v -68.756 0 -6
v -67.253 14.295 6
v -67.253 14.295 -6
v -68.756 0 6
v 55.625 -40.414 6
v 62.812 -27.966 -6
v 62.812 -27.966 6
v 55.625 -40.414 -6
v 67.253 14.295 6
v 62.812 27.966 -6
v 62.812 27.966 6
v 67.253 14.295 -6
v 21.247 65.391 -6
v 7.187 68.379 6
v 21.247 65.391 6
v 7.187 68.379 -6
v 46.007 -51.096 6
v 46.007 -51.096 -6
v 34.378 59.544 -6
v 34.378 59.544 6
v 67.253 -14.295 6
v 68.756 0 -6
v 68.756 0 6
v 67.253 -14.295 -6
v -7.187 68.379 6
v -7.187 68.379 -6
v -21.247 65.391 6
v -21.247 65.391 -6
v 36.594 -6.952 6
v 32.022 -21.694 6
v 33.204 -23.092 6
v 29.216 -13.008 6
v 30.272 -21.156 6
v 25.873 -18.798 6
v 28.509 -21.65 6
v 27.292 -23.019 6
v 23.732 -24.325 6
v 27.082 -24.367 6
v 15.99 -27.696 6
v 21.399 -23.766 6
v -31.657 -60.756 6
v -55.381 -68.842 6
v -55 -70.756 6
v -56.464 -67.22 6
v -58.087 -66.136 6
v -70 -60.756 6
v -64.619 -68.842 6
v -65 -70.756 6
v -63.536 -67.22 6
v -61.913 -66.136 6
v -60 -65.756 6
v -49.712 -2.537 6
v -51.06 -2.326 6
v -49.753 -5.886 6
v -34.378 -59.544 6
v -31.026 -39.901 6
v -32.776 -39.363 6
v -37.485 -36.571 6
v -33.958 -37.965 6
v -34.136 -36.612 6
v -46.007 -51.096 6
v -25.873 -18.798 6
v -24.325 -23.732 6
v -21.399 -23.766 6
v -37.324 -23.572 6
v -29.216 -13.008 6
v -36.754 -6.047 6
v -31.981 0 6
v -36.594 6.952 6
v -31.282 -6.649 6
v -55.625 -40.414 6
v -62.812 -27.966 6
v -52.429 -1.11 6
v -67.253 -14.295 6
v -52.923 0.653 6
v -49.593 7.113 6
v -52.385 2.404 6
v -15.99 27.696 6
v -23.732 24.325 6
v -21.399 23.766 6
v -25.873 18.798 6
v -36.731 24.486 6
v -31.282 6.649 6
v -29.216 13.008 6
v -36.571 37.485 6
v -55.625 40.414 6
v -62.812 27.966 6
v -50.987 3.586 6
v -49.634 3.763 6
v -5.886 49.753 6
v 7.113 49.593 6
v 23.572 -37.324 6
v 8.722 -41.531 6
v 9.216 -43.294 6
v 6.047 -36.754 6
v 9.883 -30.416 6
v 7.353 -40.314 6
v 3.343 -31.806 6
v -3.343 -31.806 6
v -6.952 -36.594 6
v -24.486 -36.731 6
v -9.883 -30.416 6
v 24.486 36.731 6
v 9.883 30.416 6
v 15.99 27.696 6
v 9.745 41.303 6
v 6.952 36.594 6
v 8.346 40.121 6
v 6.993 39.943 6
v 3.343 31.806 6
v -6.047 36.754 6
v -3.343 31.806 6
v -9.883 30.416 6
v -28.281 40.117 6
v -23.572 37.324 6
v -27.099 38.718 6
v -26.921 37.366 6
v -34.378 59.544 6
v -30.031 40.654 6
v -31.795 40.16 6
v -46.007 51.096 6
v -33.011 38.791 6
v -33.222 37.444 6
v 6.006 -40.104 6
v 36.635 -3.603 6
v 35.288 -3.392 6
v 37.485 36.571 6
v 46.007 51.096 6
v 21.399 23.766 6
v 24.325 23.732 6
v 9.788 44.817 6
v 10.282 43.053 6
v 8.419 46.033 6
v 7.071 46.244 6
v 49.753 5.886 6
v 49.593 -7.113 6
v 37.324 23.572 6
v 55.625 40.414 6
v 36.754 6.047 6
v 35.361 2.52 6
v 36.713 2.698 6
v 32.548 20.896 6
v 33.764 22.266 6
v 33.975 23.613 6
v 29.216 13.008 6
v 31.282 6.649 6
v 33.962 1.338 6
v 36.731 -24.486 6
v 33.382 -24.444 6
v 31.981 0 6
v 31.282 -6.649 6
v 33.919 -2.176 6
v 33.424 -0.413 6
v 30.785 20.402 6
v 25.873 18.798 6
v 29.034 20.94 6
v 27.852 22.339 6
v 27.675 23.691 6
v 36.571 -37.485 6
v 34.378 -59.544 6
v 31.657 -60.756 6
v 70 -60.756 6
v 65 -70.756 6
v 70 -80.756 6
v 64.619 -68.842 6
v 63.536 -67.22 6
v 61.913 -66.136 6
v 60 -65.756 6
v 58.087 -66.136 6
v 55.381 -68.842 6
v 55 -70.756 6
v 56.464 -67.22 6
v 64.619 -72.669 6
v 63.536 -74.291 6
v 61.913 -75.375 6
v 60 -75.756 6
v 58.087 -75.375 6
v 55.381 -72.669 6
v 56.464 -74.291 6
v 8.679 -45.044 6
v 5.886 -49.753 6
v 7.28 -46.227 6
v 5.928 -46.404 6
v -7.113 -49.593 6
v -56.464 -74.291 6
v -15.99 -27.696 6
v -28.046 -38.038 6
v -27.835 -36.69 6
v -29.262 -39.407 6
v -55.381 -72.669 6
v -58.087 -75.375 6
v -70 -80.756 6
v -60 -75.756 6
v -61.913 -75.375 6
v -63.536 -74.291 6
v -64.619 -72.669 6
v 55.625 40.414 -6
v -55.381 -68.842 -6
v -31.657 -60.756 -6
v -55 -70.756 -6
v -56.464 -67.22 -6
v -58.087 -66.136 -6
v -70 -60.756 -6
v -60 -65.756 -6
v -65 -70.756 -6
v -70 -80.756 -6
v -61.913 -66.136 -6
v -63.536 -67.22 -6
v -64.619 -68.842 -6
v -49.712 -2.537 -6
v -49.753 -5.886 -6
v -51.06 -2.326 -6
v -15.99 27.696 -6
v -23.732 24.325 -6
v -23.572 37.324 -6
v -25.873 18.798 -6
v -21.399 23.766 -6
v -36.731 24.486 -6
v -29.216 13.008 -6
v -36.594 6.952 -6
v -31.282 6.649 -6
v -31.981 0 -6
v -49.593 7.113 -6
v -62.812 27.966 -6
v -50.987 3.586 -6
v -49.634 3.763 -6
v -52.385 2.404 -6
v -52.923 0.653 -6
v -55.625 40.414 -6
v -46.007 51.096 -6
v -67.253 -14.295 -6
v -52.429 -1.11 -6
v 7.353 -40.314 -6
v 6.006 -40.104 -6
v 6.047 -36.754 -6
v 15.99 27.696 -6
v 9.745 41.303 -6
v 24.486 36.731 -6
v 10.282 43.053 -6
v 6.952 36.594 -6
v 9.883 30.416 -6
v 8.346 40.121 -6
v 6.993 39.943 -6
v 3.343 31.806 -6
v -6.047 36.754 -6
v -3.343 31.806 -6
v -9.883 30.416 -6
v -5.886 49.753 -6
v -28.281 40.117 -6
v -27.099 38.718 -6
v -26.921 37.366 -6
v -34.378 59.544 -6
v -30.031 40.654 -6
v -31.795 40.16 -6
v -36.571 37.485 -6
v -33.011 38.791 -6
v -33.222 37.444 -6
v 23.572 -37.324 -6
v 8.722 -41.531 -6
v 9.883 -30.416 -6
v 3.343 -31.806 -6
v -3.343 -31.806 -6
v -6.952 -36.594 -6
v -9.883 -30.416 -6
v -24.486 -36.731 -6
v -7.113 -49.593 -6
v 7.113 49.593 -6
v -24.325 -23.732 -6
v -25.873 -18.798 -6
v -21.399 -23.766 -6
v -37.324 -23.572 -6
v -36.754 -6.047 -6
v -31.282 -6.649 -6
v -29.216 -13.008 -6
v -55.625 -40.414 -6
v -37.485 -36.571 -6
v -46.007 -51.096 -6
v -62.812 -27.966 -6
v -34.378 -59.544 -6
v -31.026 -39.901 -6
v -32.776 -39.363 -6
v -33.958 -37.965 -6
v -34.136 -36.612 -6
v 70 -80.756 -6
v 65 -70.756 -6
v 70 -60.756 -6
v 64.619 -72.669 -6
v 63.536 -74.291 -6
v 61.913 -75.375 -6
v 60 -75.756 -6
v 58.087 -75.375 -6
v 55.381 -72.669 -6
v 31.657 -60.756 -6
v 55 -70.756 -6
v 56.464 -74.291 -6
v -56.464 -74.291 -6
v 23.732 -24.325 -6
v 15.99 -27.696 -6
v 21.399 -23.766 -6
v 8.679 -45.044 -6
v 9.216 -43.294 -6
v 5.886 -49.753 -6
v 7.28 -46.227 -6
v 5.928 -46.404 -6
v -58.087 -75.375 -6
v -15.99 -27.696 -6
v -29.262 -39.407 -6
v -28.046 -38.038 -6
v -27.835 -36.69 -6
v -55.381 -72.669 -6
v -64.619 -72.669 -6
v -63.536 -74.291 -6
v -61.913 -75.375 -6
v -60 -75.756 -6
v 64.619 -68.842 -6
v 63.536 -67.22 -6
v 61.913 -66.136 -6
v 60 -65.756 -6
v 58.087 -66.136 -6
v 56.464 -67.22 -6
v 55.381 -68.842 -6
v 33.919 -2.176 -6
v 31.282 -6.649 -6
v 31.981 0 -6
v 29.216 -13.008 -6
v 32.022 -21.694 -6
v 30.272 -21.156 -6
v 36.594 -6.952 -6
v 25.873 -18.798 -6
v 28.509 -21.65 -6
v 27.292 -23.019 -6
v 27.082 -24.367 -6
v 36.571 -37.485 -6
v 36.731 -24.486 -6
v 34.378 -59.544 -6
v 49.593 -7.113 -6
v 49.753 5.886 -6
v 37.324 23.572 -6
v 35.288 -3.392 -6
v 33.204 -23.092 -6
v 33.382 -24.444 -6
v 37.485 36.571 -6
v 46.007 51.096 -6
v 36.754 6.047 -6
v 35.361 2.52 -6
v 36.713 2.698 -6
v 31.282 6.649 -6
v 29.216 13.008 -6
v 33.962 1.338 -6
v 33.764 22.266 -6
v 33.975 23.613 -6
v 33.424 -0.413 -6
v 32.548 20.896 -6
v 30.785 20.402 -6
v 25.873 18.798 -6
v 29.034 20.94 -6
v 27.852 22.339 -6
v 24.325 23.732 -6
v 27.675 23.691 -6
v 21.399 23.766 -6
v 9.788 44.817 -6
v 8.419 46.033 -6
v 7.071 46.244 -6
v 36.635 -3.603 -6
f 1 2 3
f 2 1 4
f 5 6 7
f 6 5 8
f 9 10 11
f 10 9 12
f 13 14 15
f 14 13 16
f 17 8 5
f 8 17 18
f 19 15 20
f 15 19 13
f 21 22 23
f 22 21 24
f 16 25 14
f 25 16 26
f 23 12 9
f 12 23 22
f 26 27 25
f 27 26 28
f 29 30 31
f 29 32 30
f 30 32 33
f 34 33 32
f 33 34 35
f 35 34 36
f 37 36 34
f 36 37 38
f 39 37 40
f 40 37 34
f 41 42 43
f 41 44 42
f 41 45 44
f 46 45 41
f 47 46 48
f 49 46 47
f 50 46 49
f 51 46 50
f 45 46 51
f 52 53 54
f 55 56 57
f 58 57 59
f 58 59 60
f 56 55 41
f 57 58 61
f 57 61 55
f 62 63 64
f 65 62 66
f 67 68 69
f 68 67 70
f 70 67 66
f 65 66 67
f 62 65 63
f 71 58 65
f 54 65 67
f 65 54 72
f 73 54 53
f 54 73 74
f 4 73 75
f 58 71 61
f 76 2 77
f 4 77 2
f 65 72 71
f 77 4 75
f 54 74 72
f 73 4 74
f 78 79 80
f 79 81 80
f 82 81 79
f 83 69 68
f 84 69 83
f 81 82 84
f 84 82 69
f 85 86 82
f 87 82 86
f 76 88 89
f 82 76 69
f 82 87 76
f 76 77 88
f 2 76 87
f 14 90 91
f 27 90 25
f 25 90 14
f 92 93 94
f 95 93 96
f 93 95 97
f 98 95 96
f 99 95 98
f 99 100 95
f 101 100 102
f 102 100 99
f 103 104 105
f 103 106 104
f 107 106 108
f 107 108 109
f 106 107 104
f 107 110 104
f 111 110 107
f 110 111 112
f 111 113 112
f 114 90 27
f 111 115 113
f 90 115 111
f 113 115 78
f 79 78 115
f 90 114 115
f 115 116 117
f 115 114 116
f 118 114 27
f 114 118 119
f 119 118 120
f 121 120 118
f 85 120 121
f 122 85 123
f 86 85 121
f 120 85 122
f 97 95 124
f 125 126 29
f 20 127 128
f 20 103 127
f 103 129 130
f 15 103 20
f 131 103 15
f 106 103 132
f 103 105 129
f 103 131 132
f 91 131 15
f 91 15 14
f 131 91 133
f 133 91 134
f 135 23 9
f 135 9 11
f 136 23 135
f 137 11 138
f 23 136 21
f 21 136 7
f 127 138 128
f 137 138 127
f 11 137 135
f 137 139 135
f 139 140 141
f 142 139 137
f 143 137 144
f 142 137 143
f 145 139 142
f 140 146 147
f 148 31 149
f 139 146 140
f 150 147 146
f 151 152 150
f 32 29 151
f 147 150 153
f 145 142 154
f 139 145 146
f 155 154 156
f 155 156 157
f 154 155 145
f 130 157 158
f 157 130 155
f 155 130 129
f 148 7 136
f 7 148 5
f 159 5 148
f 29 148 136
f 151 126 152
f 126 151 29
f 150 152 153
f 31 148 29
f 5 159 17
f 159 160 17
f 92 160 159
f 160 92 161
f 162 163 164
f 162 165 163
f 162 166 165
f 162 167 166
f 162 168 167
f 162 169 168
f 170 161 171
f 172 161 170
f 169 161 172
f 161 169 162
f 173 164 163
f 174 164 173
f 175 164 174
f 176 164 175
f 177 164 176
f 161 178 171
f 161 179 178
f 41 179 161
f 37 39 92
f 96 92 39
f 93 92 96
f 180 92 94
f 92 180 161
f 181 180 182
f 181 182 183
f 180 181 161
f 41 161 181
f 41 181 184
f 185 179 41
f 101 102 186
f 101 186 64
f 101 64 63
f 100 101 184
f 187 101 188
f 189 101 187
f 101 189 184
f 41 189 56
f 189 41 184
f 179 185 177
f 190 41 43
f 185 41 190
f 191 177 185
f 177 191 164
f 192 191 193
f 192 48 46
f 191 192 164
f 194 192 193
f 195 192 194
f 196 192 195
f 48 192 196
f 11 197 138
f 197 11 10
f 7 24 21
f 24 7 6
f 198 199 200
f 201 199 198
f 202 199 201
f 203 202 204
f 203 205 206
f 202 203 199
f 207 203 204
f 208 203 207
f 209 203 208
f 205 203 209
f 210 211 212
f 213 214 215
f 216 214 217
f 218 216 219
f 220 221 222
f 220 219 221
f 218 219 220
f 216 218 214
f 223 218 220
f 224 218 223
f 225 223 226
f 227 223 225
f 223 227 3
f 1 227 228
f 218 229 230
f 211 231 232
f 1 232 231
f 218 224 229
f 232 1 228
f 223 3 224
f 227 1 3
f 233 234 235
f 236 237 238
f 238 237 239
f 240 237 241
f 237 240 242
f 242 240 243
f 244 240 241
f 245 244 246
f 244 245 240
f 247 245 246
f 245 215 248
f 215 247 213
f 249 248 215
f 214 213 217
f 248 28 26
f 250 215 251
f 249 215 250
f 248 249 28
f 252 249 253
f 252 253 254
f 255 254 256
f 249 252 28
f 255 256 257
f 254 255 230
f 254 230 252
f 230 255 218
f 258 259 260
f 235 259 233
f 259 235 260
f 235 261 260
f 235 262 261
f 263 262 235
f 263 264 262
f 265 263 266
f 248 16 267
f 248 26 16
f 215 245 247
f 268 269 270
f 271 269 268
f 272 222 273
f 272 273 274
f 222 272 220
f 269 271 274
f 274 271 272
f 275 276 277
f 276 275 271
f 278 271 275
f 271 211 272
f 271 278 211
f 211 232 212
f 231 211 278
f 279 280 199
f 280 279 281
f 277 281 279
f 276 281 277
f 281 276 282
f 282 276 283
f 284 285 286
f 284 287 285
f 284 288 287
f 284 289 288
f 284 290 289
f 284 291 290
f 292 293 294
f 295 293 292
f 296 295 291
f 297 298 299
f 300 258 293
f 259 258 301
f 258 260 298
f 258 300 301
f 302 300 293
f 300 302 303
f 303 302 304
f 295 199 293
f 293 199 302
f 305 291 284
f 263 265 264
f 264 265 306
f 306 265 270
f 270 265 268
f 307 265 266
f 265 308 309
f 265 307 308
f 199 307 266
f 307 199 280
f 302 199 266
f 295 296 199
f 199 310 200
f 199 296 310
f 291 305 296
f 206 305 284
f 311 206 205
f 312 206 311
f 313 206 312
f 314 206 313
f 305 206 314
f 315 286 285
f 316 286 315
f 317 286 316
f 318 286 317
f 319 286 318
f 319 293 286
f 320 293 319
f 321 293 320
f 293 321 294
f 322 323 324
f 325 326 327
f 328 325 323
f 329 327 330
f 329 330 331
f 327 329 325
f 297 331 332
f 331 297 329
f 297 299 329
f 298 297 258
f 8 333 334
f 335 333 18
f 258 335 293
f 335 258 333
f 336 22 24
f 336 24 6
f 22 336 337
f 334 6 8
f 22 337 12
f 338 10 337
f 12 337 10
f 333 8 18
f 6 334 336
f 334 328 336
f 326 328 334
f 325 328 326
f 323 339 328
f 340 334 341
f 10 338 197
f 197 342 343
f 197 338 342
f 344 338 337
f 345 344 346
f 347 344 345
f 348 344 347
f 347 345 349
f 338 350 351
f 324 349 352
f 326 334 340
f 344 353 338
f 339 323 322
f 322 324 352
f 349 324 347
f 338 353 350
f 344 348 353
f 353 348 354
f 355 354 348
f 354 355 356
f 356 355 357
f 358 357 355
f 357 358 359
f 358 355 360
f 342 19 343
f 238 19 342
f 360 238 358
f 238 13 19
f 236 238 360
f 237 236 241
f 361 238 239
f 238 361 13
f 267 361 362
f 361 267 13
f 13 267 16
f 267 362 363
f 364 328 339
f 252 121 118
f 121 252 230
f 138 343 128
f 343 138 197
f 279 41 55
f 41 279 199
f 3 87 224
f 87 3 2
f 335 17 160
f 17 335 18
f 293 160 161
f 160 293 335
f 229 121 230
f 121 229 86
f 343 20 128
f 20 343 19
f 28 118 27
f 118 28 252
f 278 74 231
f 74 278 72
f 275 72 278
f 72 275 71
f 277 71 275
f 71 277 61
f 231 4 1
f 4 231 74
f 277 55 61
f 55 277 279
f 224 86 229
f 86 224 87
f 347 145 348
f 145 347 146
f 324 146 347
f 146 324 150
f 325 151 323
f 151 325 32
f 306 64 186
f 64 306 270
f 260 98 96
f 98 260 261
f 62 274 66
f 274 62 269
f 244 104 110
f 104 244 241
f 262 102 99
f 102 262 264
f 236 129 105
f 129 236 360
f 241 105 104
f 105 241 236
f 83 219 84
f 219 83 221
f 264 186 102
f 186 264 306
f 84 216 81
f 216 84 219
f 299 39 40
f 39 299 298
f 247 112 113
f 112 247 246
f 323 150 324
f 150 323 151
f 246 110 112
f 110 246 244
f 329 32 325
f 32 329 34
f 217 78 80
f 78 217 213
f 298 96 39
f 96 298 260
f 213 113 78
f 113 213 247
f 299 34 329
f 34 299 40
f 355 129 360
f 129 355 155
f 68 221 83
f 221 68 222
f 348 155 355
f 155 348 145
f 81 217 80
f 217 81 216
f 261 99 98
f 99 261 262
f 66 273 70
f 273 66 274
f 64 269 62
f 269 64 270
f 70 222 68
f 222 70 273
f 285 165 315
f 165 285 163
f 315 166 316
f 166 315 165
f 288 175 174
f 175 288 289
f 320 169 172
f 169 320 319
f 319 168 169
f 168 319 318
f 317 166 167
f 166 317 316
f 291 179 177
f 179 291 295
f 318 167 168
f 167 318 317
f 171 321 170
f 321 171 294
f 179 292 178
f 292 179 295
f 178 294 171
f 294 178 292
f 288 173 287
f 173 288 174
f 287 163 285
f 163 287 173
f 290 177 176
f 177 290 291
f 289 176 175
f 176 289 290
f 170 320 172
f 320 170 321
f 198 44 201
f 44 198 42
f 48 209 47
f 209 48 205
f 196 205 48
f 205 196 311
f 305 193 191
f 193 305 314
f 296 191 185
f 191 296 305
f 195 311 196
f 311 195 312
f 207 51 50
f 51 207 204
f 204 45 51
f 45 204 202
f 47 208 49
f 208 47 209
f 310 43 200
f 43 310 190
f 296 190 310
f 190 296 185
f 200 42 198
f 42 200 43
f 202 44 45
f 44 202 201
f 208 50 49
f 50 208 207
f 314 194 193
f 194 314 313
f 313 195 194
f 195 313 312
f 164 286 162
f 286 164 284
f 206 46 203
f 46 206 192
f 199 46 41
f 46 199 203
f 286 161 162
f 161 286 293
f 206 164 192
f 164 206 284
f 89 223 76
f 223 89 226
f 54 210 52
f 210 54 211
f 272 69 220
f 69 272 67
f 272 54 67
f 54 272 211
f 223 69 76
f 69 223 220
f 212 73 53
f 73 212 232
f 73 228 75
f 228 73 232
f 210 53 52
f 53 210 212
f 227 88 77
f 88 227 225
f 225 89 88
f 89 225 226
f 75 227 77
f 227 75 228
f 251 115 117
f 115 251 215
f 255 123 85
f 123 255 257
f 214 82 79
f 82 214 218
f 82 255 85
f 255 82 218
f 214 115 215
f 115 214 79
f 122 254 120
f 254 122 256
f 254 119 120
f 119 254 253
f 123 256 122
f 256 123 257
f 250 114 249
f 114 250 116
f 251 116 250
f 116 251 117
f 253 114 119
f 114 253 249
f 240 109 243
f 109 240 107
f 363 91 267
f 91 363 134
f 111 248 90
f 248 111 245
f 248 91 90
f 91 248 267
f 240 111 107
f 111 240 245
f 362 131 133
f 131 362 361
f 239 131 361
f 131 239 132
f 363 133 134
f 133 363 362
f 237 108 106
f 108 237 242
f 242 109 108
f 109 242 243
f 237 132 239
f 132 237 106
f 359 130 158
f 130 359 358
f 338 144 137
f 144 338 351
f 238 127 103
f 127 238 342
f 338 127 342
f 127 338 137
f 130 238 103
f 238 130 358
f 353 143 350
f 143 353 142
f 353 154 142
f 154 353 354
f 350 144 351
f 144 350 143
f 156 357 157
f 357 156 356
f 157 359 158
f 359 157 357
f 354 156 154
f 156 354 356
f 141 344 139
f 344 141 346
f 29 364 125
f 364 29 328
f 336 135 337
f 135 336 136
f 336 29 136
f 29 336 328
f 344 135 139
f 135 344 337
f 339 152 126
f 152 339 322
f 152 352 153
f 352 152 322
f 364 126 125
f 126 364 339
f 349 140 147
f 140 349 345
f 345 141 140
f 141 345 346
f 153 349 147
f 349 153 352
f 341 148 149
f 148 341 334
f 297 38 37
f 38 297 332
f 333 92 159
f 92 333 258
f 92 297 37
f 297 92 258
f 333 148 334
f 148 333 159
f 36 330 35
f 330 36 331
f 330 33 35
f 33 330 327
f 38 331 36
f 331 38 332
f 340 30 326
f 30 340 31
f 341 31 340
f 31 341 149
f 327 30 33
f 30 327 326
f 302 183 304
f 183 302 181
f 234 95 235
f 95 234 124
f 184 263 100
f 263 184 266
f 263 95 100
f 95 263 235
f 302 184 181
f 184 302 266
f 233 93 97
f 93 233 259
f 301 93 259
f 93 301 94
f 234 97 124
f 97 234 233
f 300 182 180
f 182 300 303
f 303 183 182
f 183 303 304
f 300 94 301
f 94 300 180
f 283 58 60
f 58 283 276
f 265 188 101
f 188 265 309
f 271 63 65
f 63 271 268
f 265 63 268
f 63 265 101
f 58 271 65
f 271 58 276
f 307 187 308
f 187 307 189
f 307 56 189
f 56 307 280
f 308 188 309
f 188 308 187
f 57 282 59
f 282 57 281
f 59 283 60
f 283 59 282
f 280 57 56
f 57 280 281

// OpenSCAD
union(){
    difference(){
        union(){
            union(){
                difference(){
                    cylinder(h=12, d=137.51150572225254, center=true);
                    cylinder(h=12.001, d=63.96152422706632, center=true);
                };
            }; // create_cylinder_with_cutout_inner_63.96152422706632mm_outer137.51150572225254mm_thickness12mm
            union(){
                difference(){
                    cylinder(h=12, d=136.51150572225254, center=true);
                    cylinder(h=12, d=139.51150572225254, center=true);
                }; // mount_contruction_helper_cylinder
                translate(v=[0, -70.75575286112627, 0]){
                    difference(){
                        cube(size=[140, 20, 12], center=true); // mount_base
                        union(){
                            #translate(v=[60.0, 0, -12]){
                                cylinder(h=19.0, d=10);
                            }; // mount_hole_a
                            translate(v=[-60.0, 0, -12]){
                                cylinder(h=19.0, d=10);
                            }; // mount_hole_a
                        };
                    };
                }; // mount_bar_top
            }; // append_mounting_holes_to_base_slice_10_140
        };
        rotate(a=[0.0, 0.0, 179.29289321881345]){
            translate(v=[43.17691453623979, 0.0, 0.0]){
                union(){
                    cube(size=[13.0, 13.0, 13.0], center=true); // magpylib.magnet.Cuboid
                    translate(v=[6.5, 0, -6.0]){
                        cylinder(h=24, d=6.5);
                    }; // annotation_cube
                };
            };
        }; // ops_magnet_
        rotate(a=[0.0, 0.0, 89.29289321881345]){
            translate(v=[30.530689059287177, 30.53068905928717, 0.0]){
                union(){
                    cube(size=[13.0, 13.0, 13.0], center=true); // magpylib.magnet.Cuboid
                    translate(v=[6.5, 0, -6.0]){
                        cylinder(h=24, d=6.5);
                    }; // annotation_cube
                };
            };
        }; // ops_magnet_
        rotate(a=[0.0, 0.0, -0.7071067811865472]){
            translate(v=[2.6438235091932444e-15, 43.17691453623979, 0.0]){
                union(){
                    cube(size=[13.0, 13.0, 13.0], center=true); // magpylib.magnet.Cuboid
                    translate(v=[6.5, 0, -6.0]){
                        cylinder(h=24, d=6.5);
                    }; // annotation_cube
                };
            };
        }; // ops_magnet_
        rotate(a=[-0.0, -0.0, -90.70710678118654]){
            translate(v=[-30.53068905928717, 30.530689059287177, 0.0]){
                union(){
                    cube(size=[13.0, 13.0, 13.0], center=true); // magpylib.magnet.Cuboid
                    translate(v=[6.5, 0, -6.0]){
                        cylinder(h=24, d=6.5);
                    }; // annotation_cube
                };
            };
        }; // ops_magnet_
        rotate(a=[0.0, 0.0, 179.29289321881345]){
            translate(v=[-43.17691453623979, 5.287647018386489e-15, 0.0]){
                union(){
                    cube(size=[13.0, 13.0, 13.0], center=true); // magpylib.magnet.Cuboid
                    translate(v=[6.5, 0, -6.0]){
                        cylinder(h=24, d=6.5);
                    }; // annotation_cube
                };
            };
        }; // ops_magnet_
        rotate(a=[0.0, 0.0, 89.29289321881345]){
            translate(v=[-30.53068905928718, -30.53068905928717, 0.0]){
                union(){
                    cube(size=[13.0, 13.0, 13.0], center=true); // magpylib.magnet.Cuboid
                    translate(v=[6.5, 0, -6.0]){
                        cylinder(h=24, d=6.5);
                    }; // annotation_cube
                };
            };
        }; // ops_magnet_
        rotate(a=[0.0, 0.0, -0.7071067811865472]){
            translate(v=[-7.931470527579733e-15, -43.17691453623979, 0.0]){
                union(){
                    cube(size=[13.0, 13.0, 13.0], center=true); // magpylib.magnet.Cuboid
                    translate(v=[6.5, 0, -6.0]){
                        cylinder(h=24, d=6.5);
                    }; // annotation_cube
                };
            };
        }; // ops_magnet_
        rotate(a=[-0.0, -0.0, -90.70710678118654]){
            translate(v=[30.530689059287166, -30.53068905928718, 0.0]){
                union(){
                    cube(size=[13.0, 13.0, 13.0], center=true); // magpylib.magnet.Cuboid
                    translate(v=[6.5, 0, -6.0]){
                        cylinder(h=24, d=6.5);
                    }; // annotation_cube
                };
            };
        }; // ops_magnet_
    };
};
// 0_create_cylinder_with_cutout_inner_63.96152422706632mm_outer137.51150572225254mm_thickness12mm 
// 1_ops_magnet_ 
// 2_ops_magnet_ 
// 3_ops_magnet_ 
// 4_ops_magnet_ 
// 5_ops_magnet_ 
// 6_ops_magnet_ 
// 7_ops_magnet_ 
// 8_ops_magnet_ 
